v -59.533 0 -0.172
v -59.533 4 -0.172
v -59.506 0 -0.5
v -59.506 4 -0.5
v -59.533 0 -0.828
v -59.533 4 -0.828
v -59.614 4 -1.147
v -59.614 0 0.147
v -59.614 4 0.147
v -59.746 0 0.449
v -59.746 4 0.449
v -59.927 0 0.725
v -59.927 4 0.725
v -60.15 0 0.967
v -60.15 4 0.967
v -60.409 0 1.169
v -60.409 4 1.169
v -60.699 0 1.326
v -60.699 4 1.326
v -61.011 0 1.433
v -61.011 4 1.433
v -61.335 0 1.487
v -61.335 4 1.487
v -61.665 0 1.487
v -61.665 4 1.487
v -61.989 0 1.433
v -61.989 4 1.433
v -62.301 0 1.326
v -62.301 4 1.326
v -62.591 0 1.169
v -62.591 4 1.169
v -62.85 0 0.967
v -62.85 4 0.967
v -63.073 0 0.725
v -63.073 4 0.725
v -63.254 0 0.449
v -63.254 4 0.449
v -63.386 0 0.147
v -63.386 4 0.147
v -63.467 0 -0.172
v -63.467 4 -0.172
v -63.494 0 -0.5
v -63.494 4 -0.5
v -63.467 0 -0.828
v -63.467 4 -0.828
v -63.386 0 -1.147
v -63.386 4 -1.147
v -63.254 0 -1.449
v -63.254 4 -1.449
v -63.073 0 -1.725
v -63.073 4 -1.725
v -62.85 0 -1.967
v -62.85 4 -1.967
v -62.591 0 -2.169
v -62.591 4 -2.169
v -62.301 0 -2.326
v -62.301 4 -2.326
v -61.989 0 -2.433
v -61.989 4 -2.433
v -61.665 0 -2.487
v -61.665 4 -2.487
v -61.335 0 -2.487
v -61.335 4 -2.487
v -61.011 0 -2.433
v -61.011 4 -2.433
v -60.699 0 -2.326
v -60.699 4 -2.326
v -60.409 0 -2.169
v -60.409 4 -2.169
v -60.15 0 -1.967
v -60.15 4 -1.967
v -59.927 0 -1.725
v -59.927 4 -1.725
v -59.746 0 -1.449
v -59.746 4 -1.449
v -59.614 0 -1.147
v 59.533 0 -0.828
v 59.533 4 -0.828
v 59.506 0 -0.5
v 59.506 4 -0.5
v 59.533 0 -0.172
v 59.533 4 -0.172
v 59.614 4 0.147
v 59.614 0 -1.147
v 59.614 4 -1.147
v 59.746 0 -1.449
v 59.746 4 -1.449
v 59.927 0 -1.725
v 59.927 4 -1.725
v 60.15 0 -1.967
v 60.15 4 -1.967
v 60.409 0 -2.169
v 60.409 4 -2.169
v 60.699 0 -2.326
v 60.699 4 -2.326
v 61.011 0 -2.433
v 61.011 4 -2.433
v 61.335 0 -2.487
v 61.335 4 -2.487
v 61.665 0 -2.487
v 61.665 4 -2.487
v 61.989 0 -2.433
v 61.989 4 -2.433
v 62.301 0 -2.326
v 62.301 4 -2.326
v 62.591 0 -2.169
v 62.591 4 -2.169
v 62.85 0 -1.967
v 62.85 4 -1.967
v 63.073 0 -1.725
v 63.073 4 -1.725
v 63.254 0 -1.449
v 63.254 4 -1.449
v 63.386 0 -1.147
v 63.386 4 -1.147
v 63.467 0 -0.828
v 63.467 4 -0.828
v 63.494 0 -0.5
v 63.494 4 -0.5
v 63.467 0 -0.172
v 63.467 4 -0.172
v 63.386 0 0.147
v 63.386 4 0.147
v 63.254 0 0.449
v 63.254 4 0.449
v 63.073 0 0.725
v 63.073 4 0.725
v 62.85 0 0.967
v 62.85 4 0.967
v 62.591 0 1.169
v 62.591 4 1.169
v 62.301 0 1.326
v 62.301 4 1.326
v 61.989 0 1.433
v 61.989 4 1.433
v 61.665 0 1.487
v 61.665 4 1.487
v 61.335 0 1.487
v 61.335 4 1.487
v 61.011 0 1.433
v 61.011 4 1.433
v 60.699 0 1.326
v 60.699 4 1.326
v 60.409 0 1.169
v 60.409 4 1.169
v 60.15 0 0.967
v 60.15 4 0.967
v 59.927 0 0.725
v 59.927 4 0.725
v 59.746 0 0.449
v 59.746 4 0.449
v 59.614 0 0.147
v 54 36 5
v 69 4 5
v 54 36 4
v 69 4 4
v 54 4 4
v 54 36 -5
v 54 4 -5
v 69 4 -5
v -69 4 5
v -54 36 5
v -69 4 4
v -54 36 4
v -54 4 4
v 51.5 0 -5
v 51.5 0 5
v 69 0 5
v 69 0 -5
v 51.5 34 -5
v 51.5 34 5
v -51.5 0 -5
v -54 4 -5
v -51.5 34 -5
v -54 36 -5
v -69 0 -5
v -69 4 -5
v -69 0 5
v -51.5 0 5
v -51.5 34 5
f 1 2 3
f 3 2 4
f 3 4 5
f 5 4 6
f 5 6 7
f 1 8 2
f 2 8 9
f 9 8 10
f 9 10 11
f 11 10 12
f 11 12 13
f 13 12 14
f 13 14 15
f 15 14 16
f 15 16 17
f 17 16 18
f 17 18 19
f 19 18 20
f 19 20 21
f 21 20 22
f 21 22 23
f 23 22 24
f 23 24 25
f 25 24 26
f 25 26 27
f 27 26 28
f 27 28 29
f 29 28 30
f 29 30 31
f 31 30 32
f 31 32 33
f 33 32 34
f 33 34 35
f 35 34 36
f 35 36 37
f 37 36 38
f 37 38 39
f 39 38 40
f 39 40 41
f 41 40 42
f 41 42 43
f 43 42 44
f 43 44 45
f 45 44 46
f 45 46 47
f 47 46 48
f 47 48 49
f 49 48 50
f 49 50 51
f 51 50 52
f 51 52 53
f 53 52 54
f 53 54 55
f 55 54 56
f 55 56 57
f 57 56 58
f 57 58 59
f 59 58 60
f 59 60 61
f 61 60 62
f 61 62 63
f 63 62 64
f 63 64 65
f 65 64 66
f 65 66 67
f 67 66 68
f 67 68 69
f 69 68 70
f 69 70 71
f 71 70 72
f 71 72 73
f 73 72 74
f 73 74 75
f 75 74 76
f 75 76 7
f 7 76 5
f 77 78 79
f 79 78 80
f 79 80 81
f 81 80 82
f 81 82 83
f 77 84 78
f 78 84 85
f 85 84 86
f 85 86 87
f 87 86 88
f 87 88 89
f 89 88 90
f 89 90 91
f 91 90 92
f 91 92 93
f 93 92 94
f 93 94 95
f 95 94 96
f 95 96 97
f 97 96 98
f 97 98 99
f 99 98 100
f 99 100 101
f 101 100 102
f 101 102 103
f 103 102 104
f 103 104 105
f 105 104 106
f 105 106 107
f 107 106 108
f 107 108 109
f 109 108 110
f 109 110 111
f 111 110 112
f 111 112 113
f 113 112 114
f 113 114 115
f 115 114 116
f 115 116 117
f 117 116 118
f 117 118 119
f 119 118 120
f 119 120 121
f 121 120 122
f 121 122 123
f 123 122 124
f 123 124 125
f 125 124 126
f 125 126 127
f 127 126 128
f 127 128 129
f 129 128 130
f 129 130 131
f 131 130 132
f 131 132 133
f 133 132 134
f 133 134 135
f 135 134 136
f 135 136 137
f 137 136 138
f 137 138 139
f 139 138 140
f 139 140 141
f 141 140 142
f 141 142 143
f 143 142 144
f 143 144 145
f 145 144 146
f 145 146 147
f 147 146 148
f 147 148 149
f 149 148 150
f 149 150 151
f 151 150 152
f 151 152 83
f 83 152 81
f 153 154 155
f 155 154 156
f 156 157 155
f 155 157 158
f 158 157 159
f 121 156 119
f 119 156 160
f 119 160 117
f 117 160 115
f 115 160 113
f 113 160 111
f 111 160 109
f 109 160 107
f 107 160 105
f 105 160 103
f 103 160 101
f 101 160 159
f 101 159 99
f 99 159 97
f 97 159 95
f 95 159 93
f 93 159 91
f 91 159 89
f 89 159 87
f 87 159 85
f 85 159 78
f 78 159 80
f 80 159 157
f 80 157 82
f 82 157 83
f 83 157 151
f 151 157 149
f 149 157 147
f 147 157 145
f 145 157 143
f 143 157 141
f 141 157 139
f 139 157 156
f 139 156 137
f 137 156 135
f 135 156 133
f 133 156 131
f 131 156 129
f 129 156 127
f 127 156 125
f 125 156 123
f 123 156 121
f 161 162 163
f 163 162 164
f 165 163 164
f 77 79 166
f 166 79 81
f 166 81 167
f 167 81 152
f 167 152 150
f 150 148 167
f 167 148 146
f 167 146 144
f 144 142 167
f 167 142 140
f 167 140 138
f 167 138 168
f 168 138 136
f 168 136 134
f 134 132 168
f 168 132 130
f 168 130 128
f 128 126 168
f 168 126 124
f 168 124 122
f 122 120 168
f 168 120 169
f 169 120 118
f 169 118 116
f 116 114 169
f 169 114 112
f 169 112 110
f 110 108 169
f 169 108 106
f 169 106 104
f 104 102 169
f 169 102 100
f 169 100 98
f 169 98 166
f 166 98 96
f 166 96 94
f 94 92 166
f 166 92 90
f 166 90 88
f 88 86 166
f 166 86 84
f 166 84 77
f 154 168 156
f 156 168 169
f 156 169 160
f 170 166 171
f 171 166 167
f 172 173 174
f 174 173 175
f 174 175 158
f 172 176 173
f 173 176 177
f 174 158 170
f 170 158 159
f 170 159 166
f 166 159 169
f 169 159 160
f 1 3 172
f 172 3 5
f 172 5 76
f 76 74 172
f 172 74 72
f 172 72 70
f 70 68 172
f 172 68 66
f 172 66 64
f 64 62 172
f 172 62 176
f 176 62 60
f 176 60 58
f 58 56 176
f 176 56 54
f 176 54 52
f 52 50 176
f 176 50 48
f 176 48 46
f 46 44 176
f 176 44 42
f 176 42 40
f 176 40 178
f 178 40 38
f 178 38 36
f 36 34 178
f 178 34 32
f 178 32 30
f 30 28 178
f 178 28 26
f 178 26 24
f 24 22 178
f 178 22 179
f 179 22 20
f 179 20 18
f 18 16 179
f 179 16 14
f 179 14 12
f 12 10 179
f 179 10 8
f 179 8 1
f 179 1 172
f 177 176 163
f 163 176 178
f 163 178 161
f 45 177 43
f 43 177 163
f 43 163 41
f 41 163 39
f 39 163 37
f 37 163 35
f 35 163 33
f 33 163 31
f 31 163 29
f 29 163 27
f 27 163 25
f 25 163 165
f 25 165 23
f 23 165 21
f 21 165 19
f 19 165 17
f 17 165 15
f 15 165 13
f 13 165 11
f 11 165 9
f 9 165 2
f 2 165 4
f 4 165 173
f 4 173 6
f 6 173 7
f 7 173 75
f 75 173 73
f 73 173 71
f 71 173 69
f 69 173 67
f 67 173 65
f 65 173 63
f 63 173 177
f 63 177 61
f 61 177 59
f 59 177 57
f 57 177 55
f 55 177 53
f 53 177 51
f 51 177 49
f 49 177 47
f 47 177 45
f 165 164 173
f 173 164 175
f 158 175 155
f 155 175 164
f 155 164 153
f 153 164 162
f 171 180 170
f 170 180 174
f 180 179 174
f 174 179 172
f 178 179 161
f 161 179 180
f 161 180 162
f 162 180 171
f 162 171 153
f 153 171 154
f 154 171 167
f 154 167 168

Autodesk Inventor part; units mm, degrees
ref_plane "YZ Plane" through (0, 0, 0) normal (1, 0, 0) x (0, 1, 0)
ref_plane "XZ Plane" through (0, 0, 0) normal (0, 1, 0) x (-1, 0, 0)
ref_plane "XY Plane" through (0, 0, 0) normal (0, 0, 1) x (1, 0, 0)
sketch "Sketch1" plane through (0, 0, 0) normal (0, 0, 1) x (1, 0, 0)
  point P0 (0, 0)
sketch "Sketch2" plane through (0, 0, 0) normal (0, 0, 1) x (1, 0, 0)
  line L0 (-69, 0) -> (-69, 4)
  line L1 (-69, 4) -> (-54, 4)
  line L2 (-54, 4) -> (-54, 36)
  line L3 (-54, 36) -> (0, 36)
  line L4 (0, 36) -> (0, 34)
  line L5 (0, 34) -> (-51.5, 34)
  line L6 (-51.5, 34) -> (-51.5, 0)
  line L7 (-51.5, 0) -> (-69, 0)
  point P0 (0, 0)
  point P1 (-25.75, 34)
  point P2 (0, 35)
  dimension "d0" = 2
  dimension "d1" = 2.5
  dimension "d2" = 4
  dimension "d3" = 4
  dimension "d4" = 15
  dimension "d6" = 0
  dimension "d8" = 51.5
  dimension "d11" = 34
extrude "Extrusion1" add sketch "Sketch2" along normal mid plane 10
mirror "Mirror1" about plane through (0, 34, 0) normal (1, 0, 0) of "Extrusion1"
sketch "Sketch3" plane through (0, 0, 5) normal (0, 0, 1) x (1, 0, 0)
  line L0 (-54, 36) -> (-54, 4) projected
  line L1 (-54, 36) -> (-54, 4)
  line L2 (-54, 4) -> (-69, 4) projected
  line L3 (-54, 4) -> (-69, 4)
  line L4 (-69, 4) -> (-54, 36)
  point P0 (0, 0)
extrude "Extrusion2" add sketch "Sketch3" against normal blind 1
mirror "Mirror2" about plane through (0, 0, 0) normal (1, 0, 0) of "Extrusion2"
sketch "Sketch4" plane through (54, 4, -5) normal (0, 1, 0) x (1, 0, 0)
  circle A0 centre (7.5, -4.5) radius 1.9938
  line L0 (0, 0) -> (0, -9) projected
  line L1 (15, 0) -> (0, 0) projected
  point P0 (-54, -5)
  point P1 (0, -4.5)
  dimension "d14" = 7.5
  dimension "d15" = 4.5
extrude "Extrusion3" cut sketch "Sketch4" against normal blind 20
mirror "Mirror3" about plane through (0, 0, 0) normal (1, 0, 0) of "Extrusion3"
equation "\"d3\" = d2"
properties part number "KVMMount"
